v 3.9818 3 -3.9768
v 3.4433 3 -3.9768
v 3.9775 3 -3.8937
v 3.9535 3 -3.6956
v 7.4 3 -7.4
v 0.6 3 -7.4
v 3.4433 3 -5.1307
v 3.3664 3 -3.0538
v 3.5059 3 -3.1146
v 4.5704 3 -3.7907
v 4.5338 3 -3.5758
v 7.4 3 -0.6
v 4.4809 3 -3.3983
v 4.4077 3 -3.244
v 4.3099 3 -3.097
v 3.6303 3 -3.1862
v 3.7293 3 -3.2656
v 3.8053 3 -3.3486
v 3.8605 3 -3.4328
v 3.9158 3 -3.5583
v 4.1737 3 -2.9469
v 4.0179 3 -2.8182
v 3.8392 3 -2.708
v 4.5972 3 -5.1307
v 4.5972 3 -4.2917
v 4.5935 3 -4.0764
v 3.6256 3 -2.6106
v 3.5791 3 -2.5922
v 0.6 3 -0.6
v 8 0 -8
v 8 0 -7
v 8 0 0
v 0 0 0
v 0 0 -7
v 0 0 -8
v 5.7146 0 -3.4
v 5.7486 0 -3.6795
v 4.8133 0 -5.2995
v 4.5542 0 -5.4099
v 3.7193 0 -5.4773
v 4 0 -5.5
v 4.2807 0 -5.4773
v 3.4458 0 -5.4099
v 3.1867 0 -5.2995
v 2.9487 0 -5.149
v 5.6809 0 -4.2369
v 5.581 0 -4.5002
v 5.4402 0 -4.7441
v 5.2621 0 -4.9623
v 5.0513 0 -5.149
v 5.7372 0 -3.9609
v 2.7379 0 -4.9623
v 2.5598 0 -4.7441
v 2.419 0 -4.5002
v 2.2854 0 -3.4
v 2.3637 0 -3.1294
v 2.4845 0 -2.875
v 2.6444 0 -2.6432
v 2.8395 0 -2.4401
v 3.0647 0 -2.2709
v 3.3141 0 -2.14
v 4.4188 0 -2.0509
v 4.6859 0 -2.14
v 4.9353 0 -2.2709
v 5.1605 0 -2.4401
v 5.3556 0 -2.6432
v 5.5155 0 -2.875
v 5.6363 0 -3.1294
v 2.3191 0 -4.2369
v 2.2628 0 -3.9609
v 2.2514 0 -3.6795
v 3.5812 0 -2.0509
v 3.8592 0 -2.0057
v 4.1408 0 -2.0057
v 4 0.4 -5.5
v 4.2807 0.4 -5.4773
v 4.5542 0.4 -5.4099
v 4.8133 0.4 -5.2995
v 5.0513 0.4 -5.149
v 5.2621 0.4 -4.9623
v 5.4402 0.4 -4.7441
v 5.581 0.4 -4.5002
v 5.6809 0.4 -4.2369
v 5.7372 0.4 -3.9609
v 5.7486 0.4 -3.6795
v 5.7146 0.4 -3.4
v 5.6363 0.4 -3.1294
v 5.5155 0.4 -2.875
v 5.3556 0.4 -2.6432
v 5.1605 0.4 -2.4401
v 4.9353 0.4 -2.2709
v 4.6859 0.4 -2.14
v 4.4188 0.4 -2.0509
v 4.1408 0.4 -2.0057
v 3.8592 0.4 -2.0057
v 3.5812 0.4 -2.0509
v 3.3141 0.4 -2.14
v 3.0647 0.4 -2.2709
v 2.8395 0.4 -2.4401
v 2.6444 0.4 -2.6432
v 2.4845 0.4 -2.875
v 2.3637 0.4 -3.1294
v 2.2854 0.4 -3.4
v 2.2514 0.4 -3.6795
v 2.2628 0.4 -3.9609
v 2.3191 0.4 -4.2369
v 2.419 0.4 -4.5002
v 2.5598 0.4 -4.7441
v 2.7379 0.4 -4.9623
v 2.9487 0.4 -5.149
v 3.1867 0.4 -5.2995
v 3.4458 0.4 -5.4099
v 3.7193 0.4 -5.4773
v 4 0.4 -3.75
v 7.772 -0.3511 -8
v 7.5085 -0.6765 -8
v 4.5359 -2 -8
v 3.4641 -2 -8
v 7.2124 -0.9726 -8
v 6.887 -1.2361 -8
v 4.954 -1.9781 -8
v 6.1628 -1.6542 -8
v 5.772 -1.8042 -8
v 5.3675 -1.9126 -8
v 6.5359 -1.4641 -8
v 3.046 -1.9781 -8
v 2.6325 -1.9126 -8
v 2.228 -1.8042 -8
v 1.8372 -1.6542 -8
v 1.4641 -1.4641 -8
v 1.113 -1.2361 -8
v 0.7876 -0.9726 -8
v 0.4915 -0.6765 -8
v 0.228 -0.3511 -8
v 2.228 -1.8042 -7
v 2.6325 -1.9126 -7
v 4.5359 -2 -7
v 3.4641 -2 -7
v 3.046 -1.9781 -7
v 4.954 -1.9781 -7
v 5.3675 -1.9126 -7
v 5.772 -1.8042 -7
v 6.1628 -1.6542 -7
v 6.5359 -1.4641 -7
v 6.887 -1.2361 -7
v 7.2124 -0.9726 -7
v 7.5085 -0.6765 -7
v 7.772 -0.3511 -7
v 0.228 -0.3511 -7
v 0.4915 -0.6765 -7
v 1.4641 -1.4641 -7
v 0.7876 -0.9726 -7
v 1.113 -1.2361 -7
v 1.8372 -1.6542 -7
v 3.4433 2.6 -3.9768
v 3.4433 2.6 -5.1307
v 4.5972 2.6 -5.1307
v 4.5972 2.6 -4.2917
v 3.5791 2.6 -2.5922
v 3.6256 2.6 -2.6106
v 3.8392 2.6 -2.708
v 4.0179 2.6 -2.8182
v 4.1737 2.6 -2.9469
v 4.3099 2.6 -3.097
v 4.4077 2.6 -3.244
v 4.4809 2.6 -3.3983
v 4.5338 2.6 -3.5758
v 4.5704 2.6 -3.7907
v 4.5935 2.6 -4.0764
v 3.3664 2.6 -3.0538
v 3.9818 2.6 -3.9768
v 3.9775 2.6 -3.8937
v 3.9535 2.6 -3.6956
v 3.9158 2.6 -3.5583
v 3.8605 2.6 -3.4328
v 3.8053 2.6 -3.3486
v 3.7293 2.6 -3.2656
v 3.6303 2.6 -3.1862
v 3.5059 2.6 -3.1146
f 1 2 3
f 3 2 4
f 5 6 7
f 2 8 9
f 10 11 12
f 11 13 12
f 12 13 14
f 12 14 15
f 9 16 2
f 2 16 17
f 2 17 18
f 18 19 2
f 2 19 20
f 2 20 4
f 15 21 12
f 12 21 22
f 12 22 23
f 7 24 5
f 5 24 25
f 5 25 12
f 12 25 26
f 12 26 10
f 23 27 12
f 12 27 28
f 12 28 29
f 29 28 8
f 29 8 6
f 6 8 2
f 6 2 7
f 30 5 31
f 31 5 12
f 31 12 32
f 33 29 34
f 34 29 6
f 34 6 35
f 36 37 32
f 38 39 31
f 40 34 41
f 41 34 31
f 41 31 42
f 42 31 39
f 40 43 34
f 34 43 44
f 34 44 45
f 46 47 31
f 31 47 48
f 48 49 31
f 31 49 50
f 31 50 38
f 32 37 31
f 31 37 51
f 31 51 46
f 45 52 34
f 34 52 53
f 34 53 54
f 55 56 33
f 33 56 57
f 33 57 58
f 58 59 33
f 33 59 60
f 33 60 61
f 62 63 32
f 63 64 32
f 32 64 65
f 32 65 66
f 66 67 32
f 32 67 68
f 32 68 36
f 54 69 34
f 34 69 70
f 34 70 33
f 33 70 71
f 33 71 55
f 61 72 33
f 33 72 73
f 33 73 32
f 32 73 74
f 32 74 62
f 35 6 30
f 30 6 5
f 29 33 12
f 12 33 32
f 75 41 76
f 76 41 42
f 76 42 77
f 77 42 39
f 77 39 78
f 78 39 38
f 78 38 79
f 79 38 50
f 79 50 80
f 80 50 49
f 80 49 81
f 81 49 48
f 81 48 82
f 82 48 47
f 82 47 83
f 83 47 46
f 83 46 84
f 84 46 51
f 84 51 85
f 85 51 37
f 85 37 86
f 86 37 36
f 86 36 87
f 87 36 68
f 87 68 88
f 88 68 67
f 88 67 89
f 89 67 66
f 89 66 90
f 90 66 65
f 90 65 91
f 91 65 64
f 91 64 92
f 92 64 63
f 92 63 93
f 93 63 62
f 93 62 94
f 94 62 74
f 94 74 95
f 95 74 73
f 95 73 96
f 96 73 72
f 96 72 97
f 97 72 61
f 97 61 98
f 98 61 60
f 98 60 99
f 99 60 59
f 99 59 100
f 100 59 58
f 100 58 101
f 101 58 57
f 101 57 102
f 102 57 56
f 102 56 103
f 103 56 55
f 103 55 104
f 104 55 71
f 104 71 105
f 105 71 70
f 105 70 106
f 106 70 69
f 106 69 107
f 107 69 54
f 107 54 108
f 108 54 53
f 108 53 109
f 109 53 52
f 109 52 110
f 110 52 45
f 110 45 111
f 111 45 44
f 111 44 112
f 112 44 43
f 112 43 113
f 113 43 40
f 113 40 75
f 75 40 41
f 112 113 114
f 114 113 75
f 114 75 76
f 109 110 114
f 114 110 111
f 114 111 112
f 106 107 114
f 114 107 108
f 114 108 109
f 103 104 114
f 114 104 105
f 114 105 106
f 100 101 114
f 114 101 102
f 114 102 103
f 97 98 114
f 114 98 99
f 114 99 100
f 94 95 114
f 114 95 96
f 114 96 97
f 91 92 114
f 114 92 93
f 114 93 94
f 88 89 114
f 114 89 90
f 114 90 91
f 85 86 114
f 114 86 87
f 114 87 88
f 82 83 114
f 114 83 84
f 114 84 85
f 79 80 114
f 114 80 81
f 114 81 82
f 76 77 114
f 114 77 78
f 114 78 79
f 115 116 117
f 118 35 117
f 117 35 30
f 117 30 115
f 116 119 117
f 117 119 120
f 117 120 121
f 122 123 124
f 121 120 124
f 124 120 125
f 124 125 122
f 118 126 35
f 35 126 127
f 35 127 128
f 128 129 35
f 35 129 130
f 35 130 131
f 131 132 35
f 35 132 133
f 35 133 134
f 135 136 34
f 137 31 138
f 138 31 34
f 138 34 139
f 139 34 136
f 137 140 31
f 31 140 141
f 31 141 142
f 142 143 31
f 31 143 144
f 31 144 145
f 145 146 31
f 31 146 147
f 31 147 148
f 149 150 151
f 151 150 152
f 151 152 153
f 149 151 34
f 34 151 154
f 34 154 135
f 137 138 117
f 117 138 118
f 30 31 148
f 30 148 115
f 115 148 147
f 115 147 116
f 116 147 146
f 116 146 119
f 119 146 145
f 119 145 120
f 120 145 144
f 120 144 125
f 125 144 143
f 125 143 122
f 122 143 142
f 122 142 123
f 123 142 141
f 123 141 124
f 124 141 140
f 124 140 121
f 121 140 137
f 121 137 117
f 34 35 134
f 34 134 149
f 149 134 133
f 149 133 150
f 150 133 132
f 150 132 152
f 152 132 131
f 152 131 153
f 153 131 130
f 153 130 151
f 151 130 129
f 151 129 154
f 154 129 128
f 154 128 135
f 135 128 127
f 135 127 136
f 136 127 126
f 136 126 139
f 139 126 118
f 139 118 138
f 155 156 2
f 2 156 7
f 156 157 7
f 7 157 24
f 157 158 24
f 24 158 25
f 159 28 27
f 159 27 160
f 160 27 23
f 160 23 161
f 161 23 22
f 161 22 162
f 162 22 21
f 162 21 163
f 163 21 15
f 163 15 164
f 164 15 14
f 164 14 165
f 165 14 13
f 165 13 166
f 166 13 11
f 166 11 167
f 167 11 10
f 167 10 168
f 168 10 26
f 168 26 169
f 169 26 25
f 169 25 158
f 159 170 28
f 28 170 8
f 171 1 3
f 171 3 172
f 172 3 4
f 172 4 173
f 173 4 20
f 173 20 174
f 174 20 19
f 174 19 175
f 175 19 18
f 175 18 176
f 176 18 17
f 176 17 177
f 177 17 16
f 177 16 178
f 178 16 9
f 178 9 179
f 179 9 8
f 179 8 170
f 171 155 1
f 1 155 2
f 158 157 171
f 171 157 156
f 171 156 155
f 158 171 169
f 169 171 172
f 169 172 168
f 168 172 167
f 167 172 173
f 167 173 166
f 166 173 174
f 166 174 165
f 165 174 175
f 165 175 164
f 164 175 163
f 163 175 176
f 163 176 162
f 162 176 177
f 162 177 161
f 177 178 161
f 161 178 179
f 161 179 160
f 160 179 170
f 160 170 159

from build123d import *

# Parameters (mm, degrees)
SKETCH1_W               = 8
SKETCH1_H               = 8
BOSS_EXTRUDE1_DEPTH     = 3
CUT_EXTRUDE1_DEPTH      = 12.704699911
CUT_EXTRUDE1_DEPTH_BACK = 12.704699911
CUT_EXTRUDE2_DEPTH      = 11
SKETCH4_R               = 1.75
CUT_EXTRUDE3_DEPTH      = 0.4
SKETCH5_W               = 8
SKETCH5_H               = 1
BOSS_EXTRUDE2_DEPTH     = 2
FILLET1_R               = 4
CUT_EXTRUDE4_DEPTH      = 0.4


with BuildPart() as part:
    # Sketch1 → Boss-Extrude1 (new body)
    with BuildSketch(Plane(origin=(0, 0, 0), x_dir=(1, 0, 0), z_dir=(0, 1, 0))):
        with Locations((4, 4)):
            Rectangle(SKETCH1_W, SKETCH1_H)
    extrude(amount=BOSS_EXTRUDE1_DEPTH)

    # Sketch2 → Cut-Extrude1 (cut, two sides: drawn at the far end of the back side and taken through both)
    with BuildSketch(Plane.XY.offset(-CUT_EXTRUDE1_DEPTH_BACK)):
        Polygon((0, 0), (0.6, 3), (0, 3), align=None)
        Polygon((8, 0), (7.4, 3), (8, 3), align=None)
    extrude(amount=CUT_EXTRUDE1_DEPTH + CUT_EXTRUDE1_DEPTH_BACK, mode=Mode.SUBTRACT)

    # Sketch3 → Cut-Extrude2 (cut)
    with BuildSketch(Plane(origin=(0, 0, 0), x_dir=(0, 0, -1), z_dir=(1, 0, 0))):
        Polygon((0, 0), (0.6, 3), (0, 3), align=None)
        Polygon((8, 3), (7.4, 3), (8, 0), align=None)
    extrude(amount=CUT_EXTRUDE2_DEPTH, mode=Mode.SUBTRACT)

    # Sketch4 → Cut-Extrude3 (cut)
    with BuildSketch(Plane.XZ):
        with Locations(Location((4, -3.75, 0), (0, 0, 270))):
            Circle(SKETCH4_R)
    extrude(amount=-CUT_EXTRUDE3_DEPTH, mode=Mode.SUBTRACT)

    # Sketch5 → Boss-Extrude2 (add)
    with BuildSketch(Plane.XZ):
        with Locations((4, -7.5)):
            Rectangle(SKETCH5_W, SKETCH5_H)
    extrude(amount=BOSS_EXTRUDE2_DEPTH)

    # Fillet1
    # the kernel refuses this fillet: 4 mm, written as the material it takes off along each edge
    with BuildSketch(Plane(origin=(8, -2, -16.660254038), x_dir=(0, 1, 0), z_dir=(0, 0, 1)), Plane(origin=(0, -2, 1.660254038), x_dir=(0, 1, 0), z_dir=(0, 0, -1))) as fillet1_piece_1:
        with BuildLine():
            CenterArc((4, 3.464101615), FILLET1_R, 180, 60)
            Line((0, 3.464101615), (-0.08, 3.464101615))
            Line((-0.08, 3.464101615), (-0.08, 0))
            Line((-0.08, 0), (0, -0.08))
            ThreePointArc((0, -0.08), (1, -0.08), (1.96, -0.069282032))
            Line((1.96, -0.069282032), (2, 0))
        make_face()
    extrude(amount=18.320508076, mode=Mode.SUBTRACT)

    # Sketch6 → Cut-Extrude4 (cut)
    with BuildSketch(Plane(origin=(0, 3, 0), x_dir=(1, 0, 0), z_dir=(0, 1, 0))):
        with BuildLine():
            Line((3.443331895, 5.130686034), (4.597178049, 5.130686034))
            Line((4.597178049, 5.130686034), (4.597178049, 4.291743727))
            add(Edge.make_bspline(
                [(4.597178049, 4.291743727), (4.596645702, 4.211170655), (4.595640561, 4.059038126), (4.578021597, 3.844434295), (4.553540207, 3.655975372), (4.51459395, 3.491238943), (4.462448704, 3.342468302), (4.388723742, 3.206338125), (4.298056147, 3.076066307), (4.187154731, 2.955594738), (4.059577941, 2.844170634), (3.913847481, 2.747275335), (3.753421756, 2.660946408), (3.638168327, 2.615497851), (3.579149203, 2.592224496)],
                knots=[0, 0, 0, 0, 1.347156832, 2.543608823, 3.599300285, 4.522475688, 5.370350604, 6.227678973, 7.103274953, 8.018757603, 8.959280198, 9.929437417, 10.939703653, 12, 12, 12, 12], degree=3))
            Line((3.579149203, 2.592224496), (3.366408818, 3.053762957))
            add(Edge.make_bspline(
                [(3.366408818, 3.053762957), (3.417874874, 3.07492834), (3.516080495, 3.11531534), (3.647721841, 3.193115232), (3.754216523, 3.284666717), (3.839841548, 3.388423011), (3.901059293, 3.510472084), (3.947065575, 3.648752862), (3.973734578, 3.806802537), (3.979016553, 3.918249261), (3.981793434, 3.976839881)],
                knots=[0, 0, 0, 0, 1.113959817, 2.125616841, 3.047494432, 3.914868512, 4.801521967, 5.765947312, 6.825496818, 8, 8, 8, 8], degree=3))
            Line((3.981793434, 3.976839881), (3.443331895, 3.976839881))
            Line((3.443331895, 3.976839881), (3.443331895, 5.130686034))
        make_face()
    extrude(amount=-CUT_EXTRUDE4_DEPTH, mode=Mode.SUBTRACT)


solid = part.part
